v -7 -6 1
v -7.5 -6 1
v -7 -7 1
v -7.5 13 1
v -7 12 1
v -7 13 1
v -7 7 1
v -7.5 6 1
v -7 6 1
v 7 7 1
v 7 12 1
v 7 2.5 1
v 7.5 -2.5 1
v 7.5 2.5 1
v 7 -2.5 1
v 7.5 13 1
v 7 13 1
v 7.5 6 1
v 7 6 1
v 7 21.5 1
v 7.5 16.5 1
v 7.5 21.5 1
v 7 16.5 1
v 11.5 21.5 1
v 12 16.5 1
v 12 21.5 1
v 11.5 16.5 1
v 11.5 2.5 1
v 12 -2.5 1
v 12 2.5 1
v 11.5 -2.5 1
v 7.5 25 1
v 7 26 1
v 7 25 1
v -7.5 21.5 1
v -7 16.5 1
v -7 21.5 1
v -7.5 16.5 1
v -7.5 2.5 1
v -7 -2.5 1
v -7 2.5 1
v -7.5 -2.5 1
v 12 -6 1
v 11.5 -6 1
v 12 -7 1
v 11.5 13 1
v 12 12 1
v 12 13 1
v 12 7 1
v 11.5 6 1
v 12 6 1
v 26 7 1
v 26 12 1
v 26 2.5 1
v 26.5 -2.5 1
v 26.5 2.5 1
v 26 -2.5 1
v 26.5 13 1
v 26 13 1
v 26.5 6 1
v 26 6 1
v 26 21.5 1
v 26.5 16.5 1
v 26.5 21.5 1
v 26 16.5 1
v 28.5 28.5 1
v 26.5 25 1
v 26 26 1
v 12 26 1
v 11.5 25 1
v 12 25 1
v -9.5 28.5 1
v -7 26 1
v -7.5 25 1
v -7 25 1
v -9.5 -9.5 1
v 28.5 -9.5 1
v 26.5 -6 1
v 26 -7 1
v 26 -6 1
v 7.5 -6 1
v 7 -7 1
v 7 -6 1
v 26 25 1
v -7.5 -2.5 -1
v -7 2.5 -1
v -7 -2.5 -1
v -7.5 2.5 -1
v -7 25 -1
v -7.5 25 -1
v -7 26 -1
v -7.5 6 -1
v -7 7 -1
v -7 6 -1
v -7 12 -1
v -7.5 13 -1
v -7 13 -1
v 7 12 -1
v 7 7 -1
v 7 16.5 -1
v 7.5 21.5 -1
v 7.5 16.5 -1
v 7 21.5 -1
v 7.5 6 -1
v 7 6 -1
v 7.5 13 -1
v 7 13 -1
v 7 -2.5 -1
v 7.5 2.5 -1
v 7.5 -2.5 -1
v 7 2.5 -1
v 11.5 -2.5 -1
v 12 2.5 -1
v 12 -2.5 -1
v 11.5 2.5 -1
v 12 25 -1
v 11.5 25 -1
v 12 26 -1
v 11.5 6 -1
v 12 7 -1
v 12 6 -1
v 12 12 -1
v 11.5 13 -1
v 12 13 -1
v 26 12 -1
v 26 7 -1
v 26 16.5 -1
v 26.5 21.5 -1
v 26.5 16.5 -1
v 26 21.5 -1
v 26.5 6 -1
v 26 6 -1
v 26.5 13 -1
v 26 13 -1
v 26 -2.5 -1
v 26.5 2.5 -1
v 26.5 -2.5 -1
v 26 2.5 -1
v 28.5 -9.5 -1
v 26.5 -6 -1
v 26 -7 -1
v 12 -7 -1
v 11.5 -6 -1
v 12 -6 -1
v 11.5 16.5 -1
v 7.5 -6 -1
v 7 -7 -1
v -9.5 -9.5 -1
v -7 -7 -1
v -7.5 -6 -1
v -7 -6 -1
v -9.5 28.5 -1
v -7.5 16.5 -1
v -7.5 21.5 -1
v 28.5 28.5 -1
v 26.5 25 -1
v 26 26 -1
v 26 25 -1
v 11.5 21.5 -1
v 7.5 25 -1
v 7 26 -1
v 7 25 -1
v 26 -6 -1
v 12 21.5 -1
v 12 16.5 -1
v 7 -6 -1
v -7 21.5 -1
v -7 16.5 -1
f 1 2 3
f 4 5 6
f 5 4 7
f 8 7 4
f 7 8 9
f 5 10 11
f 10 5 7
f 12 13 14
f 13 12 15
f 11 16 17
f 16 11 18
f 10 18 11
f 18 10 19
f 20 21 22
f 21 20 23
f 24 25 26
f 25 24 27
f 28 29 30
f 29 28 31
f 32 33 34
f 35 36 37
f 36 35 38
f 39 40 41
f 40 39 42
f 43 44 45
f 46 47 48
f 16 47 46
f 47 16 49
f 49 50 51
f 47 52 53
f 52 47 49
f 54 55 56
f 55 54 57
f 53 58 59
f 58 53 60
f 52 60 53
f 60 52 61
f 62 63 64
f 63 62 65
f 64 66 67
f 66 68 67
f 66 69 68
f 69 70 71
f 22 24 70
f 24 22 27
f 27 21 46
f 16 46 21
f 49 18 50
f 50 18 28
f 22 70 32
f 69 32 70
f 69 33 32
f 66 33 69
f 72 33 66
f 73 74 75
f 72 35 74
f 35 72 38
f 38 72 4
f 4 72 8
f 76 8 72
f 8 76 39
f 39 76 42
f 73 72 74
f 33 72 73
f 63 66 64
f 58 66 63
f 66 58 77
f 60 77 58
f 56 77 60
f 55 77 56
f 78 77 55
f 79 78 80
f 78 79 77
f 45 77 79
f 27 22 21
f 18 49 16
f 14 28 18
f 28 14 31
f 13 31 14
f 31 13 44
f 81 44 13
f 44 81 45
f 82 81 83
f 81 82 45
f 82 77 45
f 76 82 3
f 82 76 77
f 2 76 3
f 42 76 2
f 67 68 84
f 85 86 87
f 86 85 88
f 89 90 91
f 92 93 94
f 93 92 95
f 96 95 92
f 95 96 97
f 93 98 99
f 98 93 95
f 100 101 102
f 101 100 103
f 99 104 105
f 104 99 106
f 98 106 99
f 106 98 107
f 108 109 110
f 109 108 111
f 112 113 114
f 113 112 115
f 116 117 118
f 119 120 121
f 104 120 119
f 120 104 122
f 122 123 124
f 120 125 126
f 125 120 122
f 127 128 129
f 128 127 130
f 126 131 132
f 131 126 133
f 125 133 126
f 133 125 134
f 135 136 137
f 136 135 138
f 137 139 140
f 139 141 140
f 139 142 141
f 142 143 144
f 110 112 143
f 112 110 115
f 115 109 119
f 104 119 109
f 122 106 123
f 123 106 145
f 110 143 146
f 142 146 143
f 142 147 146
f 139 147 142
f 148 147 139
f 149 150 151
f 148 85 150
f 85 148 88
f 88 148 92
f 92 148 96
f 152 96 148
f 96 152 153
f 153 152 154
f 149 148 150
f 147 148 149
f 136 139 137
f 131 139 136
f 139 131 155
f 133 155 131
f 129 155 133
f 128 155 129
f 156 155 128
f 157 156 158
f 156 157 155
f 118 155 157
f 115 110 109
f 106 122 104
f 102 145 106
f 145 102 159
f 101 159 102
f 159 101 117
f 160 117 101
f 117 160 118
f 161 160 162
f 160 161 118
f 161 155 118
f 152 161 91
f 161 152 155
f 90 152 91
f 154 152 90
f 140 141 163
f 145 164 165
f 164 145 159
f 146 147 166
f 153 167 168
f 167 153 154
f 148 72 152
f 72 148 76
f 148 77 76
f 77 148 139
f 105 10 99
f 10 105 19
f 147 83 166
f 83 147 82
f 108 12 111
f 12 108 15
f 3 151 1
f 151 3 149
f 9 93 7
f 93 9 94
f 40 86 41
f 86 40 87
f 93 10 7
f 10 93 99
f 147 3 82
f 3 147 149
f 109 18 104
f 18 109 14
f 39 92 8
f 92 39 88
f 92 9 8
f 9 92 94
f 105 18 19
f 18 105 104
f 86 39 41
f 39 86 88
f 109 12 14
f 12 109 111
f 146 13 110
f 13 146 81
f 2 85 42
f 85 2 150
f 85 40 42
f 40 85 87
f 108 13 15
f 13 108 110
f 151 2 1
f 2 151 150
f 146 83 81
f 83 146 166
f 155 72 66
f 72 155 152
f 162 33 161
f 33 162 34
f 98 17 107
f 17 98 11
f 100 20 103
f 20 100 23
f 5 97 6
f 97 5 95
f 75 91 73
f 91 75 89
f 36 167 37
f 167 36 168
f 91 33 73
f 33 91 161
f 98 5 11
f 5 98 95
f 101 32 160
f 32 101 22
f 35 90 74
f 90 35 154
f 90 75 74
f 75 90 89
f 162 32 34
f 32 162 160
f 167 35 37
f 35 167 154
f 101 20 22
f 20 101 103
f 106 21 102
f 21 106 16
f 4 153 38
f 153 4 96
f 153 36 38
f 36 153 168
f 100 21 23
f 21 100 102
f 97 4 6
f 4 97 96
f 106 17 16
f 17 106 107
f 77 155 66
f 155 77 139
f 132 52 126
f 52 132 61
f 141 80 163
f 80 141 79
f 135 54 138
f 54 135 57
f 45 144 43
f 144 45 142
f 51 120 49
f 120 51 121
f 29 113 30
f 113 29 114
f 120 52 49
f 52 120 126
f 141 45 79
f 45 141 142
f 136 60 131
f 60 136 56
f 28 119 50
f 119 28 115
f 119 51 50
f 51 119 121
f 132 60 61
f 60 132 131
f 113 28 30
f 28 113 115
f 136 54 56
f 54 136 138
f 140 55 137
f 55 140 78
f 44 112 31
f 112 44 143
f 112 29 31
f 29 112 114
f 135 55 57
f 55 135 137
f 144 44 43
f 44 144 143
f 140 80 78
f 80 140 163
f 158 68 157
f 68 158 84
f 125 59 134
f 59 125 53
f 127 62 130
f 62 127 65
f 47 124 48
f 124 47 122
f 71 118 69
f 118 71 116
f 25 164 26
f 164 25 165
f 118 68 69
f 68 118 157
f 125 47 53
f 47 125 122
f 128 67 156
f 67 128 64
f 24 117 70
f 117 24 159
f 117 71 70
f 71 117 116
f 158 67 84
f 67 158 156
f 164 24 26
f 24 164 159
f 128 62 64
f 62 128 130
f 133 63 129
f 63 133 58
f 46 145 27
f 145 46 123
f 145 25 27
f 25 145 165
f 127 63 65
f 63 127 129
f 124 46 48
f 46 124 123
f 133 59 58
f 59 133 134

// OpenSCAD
width = 14;
length = 14;
height = 3;

for (i = [0:19:19*1]){
    for (j = [0:19:19*1]){
        translate([i, j, 0]){
            difference() {
                cube([19,19,2], center=true);
                cube([width,length,height], center=true);
                translate([0,4.25,0]){
                    cube([15,3.5,height],center=true);
                }
                translate([0,-4.25,0]){
                    cube([15,3.5,height],center=true);
                }
            }
        }
    }
}
